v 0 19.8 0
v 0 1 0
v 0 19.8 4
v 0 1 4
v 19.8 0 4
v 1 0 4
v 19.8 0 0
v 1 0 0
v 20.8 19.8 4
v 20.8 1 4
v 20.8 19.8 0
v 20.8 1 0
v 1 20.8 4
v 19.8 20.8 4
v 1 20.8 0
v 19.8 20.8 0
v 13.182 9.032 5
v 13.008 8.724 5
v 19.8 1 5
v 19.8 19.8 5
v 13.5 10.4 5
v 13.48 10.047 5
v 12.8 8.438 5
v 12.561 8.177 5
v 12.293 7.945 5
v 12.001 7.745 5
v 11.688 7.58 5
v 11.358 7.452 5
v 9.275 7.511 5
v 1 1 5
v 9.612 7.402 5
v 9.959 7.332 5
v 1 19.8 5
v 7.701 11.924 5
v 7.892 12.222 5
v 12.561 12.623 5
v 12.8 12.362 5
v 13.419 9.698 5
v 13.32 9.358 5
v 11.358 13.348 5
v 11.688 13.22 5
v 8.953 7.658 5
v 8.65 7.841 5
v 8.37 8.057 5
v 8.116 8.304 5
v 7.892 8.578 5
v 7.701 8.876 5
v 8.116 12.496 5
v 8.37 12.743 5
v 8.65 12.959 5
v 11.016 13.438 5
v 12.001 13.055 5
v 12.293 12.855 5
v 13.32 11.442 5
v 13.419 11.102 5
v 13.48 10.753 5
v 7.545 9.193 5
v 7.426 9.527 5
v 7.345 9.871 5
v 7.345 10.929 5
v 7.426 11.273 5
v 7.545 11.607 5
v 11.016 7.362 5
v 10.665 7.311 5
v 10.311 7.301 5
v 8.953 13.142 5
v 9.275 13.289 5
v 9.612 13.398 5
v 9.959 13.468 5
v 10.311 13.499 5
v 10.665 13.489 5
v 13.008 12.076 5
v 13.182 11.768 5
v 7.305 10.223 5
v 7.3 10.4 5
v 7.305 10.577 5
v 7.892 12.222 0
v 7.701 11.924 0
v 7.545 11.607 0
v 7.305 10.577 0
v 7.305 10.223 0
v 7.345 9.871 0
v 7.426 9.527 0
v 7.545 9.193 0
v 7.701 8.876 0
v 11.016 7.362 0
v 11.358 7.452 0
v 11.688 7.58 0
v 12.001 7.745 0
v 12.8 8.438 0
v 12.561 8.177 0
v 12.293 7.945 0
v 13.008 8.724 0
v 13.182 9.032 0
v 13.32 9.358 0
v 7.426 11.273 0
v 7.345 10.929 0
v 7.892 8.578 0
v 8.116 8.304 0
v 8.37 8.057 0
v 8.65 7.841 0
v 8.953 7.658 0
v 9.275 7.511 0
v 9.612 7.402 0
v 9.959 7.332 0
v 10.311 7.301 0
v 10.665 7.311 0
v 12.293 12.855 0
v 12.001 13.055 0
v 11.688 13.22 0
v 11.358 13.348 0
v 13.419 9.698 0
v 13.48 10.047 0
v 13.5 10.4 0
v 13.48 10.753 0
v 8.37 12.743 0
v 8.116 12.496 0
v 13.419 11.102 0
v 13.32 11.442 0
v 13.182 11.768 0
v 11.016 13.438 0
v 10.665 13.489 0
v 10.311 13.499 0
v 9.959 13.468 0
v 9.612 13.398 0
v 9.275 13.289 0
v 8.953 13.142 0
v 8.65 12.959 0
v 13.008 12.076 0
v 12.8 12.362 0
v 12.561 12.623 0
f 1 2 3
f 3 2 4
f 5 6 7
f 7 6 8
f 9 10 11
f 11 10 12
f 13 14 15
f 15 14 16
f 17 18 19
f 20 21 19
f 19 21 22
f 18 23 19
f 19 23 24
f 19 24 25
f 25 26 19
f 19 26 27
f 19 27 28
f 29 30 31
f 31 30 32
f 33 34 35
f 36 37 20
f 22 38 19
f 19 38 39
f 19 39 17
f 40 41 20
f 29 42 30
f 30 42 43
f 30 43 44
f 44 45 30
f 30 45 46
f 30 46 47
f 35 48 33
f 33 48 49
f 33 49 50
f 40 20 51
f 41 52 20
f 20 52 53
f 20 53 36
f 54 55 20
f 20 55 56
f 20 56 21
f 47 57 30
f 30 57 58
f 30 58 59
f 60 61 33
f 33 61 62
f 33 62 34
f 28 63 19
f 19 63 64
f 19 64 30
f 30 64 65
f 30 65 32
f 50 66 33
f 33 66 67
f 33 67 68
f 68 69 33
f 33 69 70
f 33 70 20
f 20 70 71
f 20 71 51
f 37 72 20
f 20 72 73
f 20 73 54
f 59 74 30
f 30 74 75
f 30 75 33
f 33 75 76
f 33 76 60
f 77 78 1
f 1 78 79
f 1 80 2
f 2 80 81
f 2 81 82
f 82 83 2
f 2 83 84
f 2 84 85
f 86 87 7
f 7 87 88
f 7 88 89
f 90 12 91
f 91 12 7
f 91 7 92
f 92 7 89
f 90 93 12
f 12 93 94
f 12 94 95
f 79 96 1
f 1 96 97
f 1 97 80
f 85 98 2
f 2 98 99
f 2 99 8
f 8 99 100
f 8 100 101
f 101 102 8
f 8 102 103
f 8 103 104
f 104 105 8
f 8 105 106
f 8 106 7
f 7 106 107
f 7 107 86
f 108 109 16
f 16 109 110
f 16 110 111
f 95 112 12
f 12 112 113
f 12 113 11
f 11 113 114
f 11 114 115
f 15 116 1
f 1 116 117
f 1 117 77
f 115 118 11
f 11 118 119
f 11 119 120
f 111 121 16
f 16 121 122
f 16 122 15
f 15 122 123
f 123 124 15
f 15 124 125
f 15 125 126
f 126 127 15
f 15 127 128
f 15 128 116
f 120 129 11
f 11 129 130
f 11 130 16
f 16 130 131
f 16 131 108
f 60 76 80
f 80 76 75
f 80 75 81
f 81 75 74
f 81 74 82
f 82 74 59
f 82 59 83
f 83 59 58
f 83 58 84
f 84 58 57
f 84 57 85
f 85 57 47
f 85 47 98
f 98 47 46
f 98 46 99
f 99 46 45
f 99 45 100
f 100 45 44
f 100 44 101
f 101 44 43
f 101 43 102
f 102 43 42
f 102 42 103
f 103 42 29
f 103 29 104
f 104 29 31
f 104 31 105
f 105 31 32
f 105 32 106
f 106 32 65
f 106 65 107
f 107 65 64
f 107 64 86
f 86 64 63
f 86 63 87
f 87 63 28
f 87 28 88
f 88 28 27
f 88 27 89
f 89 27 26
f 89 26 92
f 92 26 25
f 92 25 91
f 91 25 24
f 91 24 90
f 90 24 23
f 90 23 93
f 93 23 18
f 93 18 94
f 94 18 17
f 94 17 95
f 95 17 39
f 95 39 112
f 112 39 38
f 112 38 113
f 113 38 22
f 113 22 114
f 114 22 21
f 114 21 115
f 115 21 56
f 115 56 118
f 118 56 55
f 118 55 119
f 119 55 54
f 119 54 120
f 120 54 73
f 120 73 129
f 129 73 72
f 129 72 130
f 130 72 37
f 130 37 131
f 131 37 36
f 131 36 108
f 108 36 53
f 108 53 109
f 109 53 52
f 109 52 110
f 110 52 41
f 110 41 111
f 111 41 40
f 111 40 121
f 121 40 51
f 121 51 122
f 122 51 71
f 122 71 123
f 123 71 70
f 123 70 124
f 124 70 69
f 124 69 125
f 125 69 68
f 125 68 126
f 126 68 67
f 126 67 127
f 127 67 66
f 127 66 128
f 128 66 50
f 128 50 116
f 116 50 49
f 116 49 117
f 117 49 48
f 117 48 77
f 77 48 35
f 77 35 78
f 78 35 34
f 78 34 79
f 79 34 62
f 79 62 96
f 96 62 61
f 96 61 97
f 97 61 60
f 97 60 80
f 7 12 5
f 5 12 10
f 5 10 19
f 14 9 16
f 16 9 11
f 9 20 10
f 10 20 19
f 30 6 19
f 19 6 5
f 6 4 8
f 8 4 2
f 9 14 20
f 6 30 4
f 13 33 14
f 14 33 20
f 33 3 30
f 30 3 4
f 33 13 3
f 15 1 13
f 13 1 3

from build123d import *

# Parameters (mm, degrees)
ESQUISSE2_W                  = 20.8
ESQUISSE2_H                  = 20.8
BOSS_EXTRU_1_DEPTH           = 5
ENL_V_MAT_EXTRU_1_DEPTH      = 30.837560222
ENL_V_MAT_EXTRU_1_DEPTH_BACK = 30.837560222
ESQUISSE4_R                  = 3.1
CHANFREIN1_SIZE              = 1


with BuildPart() as part:
    # Esquisse2 → Boss.-Extru.1 (new body)
    with BuildSketch(Plane.XY):
        with Locations((10.4, 10.4)):
            Rectangle(ESQUISSE2_W, ESQUISSE2_H)
    extrude(amount=BOSS_EXTRU_1_DEPTH)

    # Esquisse4 → Enlèv. mat.-Extru.1 (cut, two sides: drawn at the far end of the back side and taken through both)
    with BuildSketch(Plane.XY.offset(5).offset(-ENL_V_MAT_EXTRU_1_DEPTH_BACK)):
        with Locations((10.4, 10.4)):
            Circle(ESQUISSE4_R)
    extrude(amount=ENL_V_MAT_EXTRU_1_DEPTH + ENL_V_MAT_EXTRU_1_DEPTH_BACK, mode=Mode.SUBTRACT)

    # Chanfrein1
    chanfrein1_edges = [part.edges().sort_by_distance(p)[0] for p in [
        (20.8, 10.4, 5),
        (10.4, 20.8, 5),
        (0, 10.4, 5),
        (0, 20.8, 2.5),
        (20.8, 20.8, 2.5),
        (20.8, 0, 2.5),
        (0, 0, 2.5),
        (10.4, 0, 5),
    ]]
    chamfer(chanfrein1_edges, length=CHANFREIN1_SIZE)


solid = part.part
